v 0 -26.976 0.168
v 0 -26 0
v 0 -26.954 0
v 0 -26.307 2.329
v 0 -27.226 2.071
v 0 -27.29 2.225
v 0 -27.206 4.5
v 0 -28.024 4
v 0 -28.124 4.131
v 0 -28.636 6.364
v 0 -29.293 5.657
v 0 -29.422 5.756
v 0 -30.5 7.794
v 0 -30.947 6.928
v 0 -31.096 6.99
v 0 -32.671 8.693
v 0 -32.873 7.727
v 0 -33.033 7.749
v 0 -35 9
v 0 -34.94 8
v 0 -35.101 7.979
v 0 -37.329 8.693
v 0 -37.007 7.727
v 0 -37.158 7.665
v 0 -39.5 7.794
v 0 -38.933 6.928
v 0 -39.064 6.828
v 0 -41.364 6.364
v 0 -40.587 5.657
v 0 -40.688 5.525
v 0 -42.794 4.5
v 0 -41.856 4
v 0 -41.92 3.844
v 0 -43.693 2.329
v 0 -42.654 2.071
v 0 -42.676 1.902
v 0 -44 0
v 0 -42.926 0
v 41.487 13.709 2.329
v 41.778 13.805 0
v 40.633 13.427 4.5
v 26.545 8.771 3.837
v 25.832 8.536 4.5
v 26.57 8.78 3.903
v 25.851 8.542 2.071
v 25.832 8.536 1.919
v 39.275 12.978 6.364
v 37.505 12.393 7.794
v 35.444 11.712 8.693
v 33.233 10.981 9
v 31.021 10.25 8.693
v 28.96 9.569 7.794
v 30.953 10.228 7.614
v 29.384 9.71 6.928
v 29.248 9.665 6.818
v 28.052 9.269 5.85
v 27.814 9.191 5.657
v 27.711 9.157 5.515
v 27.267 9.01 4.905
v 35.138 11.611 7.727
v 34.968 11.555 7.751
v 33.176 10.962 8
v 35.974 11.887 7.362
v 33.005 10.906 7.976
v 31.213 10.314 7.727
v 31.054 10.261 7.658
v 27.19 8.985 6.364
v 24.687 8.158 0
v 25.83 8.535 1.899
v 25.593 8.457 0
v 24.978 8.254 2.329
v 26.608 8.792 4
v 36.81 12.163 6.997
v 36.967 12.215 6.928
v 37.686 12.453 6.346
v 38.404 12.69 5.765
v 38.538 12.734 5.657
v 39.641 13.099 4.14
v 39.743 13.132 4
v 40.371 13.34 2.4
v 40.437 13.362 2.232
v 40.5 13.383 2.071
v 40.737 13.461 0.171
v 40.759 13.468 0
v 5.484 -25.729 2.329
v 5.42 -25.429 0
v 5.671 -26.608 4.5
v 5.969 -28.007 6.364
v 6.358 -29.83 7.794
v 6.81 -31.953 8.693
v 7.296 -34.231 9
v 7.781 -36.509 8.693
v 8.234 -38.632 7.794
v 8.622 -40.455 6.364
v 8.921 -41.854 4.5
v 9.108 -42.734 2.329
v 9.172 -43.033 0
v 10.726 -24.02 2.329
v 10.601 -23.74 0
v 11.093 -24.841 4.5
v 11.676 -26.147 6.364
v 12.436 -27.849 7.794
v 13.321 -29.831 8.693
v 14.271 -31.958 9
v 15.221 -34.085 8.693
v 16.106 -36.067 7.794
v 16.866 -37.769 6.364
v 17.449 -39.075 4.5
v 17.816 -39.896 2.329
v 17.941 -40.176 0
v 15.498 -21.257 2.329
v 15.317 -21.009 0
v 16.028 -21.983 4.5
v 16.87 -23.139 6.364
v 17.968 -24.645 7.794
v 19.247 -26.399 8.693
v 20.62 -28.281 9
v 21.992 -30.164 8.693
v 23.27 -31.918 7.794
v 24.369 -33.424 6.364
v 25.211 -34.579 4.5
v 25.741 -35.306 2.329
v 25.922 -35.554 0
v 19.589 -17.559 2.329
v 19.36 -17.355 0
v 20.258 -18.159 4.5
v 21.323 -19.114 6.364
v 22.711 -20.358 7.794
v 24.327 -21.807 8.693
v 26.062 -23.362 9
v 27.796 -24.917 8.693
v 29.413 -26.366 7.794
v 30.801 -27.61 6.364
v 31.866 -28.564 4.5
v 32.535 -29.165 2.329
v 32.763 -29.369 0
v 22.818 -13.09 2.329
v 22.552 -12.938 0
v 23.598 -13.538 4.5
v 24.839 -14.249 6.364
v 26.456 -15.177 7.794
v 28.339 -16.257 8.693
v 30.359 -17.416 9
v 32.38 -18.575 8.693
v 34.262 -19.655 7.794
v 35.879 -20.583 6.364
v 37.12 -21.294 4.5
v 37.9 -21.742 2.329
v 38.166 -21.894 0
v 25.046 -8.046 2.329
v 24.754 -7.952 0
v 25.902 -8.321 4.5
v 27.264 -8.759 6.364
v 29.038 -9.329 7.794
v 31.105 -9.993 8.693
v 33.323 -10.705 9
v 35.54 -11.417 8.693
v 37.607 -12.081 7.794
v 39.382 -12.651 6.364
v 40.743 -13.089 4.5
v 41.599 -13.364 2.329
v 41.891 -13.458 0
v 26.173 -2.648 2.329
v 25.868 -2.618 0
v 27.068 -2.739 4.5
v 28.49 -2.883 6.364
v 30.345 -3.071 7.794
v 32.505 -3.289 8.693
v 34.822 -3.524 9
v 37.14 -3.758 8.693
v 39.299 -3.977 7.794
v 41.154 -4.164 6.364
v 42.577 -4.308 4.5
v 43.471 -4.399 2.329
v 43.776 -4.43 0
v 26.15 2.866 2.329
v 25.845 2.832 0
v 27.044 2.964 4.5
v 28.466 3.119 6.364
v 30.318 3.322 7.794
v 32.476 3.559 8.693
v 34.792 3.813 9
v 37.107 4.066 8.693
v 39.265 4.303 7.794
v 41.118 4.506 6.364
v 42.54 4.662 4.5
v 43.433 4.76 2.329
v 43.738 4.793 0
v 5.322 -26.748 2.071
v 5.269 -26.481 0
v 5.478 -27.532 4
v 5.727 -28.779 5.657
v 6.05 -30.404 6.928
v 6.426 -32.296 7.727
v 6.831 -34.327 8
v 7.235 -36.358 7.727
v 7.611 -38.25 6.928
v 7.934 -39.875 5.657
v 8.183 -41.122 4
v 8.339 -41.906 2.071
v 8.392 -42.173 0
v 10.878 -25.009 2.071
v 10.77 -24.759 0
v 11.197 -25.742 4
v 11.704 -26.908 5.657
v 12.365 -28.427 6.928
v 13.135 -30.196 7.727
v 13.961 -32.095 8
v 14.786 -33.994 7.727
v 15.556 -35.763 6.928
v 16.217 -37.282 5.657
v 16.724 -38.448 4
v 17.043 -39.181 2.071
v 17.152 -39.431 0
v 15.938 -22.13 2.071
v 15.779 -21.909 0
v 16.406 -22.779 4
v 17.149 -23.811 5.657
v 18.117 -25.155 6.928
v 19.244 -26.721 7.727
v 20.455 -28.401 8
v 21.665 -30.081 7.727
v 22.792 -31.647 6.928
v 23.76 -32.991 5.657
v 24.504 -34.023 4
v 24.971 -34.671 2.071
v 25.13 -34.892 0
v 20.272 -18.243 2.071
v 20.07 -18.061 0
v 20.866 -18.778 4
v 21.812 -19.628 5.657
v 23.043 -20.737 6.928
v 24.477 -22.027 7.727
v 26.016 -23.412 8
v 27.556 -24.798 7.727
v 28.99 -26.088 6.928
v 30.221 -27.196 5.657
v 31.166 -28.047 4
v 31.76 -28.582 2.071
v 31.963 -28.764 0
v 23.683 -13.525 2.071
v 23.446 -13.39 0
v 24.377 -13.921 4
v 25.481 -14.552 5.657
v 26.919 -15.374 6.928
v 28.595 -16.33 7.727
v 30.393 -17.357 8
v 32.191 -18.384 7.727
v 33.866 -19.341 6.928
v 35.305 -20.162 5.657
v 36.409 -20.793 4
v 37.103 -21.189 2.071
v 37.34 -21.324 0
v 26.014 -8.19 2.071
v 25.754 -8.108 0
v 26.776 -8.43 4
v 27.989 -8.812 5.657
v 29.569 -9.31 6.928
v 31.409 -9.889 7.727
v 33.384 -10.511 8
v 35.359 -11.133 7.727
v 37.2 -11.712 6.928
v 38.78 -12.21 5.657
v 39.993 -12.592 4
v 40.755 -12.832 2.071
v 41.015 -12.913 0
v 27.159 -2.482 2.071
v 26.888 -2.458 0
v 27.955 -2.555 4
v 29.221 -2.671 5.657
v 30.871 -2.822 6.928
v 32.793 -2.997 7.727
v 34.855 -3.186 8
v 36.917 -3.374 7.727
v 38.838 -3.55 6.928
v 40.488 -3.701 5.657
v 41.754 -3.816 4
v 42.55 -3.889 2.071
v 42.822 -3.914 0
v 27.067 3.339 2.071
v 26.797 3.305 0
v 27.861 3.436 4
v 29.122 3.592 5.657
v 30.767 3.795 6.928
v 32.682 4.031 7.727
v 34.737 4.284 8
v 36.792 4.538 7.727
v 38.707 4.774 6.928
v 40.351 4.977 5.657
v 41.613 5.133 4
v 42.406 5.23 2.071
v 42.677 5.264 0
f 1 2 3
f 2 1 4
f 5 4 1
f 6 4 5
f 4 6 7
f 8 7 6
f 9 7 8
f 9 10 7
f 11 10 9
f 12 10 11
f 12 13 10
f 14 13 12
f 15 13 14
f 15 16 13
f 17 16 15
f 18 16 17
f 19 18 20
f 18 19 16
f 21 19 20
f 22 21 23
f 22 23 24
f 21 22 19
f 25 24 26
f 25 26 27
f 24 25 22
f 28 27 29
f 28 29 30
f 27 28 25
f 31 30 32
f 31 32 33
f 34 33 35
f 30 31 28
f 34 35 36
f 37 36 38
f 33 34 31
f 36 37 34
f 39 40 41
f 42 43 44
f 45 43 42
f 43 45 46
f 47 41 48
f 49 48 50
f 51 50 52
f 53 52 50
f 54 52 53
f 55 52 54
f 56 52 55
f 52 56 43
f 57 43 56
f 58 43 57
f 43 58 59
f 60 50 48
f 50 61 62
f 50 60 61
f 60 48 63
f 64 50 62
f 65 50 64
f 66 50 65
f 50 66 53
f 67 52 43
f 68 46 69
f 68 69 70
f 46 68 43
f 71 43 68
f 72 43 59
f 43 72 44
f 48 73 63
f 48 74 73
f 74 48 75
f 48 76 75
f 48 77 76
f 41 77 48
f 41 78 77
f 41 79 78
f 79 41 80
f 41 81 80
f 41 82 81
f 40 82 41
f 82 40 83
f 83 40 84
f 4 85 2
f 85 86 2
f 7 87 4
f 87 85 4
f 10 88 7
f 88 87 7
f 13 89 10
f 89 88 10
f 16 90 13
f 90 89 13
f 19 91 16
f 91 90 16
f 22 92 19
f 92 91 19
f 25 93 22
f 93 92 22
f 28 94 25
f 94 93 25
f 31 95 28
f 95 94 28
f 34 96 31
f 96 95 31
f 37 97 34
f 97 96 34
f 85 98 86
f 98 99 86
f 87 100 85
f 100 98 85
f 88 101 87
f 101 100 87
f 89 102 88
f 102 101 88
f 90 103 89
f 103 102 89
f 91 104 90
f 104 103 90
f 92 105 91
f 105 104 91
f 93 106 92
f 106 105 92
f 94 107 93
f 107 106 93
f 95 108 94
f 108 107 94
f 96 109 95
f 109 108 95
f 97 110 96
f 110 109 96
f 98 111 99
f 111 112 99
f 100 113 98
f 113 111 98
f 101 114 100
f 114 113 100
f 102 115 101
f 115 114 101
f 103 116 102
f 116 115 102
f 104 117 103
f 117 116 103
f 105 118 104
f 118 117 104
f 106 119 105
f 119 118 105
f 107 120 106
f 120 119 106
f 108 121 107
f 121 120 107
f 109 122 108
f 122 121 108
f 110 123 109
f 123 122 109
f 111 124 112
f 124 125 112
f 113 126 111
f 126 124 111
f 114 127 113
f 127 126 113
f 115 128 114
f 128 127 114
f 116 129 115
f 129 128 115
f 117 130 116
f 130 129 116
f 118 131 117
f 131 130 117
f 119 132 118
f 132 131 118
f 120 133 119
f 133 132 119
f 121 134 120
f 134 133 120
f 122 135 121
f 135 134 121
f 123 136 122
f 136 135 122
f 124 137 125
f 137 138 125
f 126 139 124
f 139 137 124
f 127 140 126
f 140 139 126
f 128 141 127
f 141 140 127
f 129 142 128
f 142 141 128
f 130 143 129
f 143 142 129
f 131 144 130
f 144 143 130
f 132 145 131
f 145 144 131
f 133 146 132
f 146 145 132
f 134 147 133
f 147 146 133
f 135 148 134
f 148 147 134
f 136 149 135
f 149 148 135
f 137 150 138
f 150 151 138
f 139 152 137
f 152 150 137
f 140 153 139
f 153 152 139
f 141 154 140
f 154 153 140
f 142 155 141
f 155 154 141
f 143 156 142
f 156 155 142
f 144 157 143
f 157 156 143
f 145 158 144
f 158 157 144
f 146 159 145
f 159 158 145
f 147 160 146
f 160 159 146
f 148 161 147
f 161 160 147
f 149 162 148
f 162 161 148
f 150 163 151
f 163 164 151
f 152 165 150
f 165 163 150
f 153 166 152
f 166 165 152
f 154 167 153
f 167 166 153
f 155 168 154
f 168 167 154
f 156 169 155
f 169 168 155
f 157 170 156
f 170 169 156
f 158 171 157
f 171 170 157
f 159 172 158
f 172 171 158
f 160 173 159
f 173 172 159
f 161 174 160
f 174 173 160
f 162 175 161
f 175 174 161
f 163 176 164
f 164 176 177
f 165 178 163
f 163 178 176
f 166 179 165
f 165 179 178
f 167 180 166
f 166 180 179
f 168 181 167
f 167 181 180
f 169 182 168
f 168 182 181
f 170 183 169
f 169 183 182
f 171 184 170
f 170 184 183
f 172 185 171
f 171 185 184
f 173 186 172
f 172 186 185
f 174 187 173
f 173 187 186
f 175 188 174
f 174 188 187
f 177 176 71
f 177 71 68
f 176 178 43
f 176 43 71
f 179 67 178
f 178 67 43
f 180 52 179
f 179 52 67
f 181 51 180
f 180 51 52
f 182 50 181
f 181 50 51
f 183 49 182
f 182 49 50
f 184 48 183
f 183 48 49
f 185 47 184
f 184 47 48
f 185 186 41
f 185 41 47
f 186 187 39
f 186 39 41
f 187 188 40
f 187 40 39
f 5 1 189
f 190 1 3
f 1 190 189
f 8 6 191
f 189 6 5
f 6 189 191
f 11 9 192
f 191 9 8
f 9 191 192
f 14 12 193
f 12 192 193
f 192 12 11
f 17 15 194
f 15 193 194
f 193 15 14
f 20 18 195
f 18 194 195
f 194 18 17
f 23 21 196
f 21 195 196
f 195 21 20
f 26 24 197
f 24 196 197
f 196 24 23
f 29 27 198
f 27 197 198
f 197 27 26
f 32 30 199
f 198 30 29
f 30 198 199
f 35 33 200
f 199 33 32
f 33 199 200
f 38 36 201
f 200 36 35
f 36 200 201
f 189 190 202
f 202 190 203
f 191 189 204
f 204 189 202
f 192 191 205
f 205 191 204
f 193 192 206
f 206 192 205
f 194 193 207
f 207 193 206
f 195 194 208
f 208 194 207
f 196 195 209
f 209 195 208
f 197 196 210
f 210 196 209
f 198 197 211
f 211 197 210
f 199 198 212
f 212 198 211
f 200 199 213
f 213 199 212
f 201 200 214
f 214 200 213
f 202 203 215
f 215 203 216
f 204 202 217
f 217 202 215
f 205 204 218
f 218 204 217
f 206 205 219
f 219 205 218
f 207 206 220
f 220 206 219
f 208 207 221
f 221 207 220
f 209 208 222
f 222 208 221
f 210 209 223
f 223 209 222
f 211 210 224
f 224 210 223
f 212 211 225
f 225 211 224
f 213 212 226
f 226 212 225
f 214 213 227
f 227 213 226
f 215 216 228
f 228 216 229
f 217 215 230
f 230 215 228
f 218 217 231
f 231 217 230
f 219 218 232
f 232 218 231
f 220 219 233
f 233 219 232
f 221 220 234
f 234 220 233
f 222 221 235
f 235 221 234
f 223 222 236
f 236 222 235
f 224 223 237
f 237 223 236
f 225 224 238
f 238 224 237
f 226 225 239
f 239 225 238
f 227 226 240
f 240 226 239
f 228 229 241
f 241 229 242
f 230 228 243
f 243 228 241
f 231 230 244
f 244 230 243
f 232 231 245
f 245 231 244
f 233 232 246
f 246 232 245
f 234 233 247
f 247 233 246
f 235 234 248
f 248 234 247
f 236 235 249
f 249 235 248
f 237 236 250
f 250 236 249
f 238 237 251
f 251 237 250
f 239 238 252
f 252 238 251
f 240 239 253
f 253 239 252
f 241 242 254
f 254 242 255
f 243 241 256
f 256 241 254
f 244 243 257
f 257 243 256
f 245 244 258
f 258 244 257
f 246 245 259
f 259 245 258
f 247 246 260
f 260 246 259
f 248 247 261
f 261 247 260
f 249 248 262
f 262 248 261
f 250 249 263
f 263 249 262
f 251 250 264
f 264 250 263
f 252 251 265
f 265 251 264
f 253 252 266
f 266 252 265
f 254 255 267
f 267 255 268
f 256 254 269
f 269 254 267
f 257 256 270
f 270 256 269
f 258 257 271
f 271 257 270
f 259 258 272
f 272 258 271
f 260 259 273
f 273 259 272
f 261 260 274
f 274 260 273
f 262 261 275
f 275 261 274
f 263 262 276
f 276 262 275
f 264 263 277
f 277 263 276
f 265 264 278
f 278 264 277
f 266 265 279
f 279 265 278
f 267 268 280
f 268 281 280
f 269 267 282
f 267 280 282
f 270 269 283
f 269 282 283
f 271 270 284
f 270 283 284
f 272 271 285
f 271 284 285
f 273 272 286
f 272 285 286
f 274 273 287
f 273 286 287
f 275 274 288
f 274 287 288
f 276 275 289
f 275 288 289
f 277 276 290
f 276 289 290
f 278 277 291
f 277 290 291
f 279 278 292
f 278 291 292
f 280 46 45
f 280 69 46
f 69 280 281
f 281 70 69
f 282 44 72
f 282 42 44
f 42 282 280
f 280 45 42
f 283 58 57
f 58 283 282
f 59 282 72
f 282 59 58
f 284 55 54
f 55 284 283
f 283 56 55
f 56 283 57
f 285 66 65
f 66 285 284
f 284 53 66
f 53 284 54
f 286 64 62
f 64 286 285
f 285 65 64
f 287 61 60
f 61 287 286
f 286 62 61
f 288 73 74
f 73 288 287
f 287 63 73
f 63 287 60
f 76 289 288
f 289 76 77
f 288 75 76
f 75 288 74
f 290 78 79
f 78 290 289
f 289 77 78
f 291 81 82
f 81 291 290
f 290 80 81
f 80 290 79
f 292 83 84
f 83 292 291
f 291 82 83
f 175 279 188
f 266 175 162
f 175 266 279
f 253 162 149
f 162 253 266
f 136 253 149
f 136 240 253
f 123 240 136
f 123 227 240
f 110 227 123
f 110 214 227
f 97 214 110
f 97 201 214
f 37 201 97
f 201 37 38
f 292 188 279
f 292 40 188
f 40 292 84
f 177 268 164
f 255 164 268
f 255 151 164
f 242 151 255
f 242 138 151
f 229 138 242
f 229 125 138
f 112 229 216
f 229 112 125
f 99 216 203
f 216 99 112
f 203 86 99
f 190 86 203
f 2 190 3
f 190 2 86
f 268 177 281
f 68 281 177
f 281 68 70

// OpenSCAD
// file: ../build_environments.scad
// build_environments.scad: modules to build level sections
//

module pool(diameter=10.0, wall_height=2.0, step_width=3.0, connections=[])
{
    difference() {
        union() {
        difference() {
            cylinder(h=0.5,r1=diameter+step_width,r2=diameter+step_width,$fn=48);
            translate([0,0,-0.1])
                cylinder(h=0.7,r1=diameter,r2=diameter,$fn=48);
        }
        difference() {
            cylinder(h=wall_height,r1=diameter+step_width+1.0,r2=diameter+step_width+1.0,$fn=48);
            translate([0,0,-0.1])
                cylinder(h=wall_height+0.2,r1=diameter+step_width,r2=diameter+step_width,$fn=48);
        }
        }
    
        for (c = connections)
        {
            rotate([0,90,0]) {
                angle = atan2(c[1],c[0]);
                rotate([-angle,0,0]) {
                    cylinder(h=diameter+5.0,r1=c[2],r2=c[2],$fn=48);
                }
            }
        }
    }
}

module straight(length=10.0, width=2.0, dy1=0.0, dy2=0.0, dz=0.0)
{
    dims = [0, 0, 0, 0, 0, (dz/length)];
    matrix = [
        [ 1, dims[0], dims[1], 0 ],
        [ dims[2], 1, dims[4], 0 ],
        [ dims[5], dims[3], 1, 0 ],
        [ 0, 0, 0, 1 ]
    ];
    multmatrix(matrix)
    difference() {
        translate([dy1,0,0])
        union() {
            rotate([0,90,0]) {
                difference() {
                    cylinder(h=(length-dy1-dy2),r1=width+1.0,r2=width+1.0,$fn=24);
                    translate([0,0,-0.1])
                        cylinder(h=(length-dy1-dy2+0.2),r1=width,r2=width,$fn=24);
                }
                difference() {
                    cylinder(h=1.0,r1=width+2.0,r2=width+2.0,$fn=24);
                    translate([0,0,-0.1])
                        cylinder(h=1.2,r1=width,r2=width,$fn=24);
                }
                translate([0,0,(length-dy1-dy2)-1.0]) {
                    difference() {
                        cylinder(h=1.0,r1=width+2.0,r2=width+2.0,$fn=24);
                        translate([0,0,-0.1])
                            cylinder(h=1.2,r1=width,r2=width,$fn=24);
                    }
                }
            }
        }
        translate([0,0,-(2*width+4.0)/2])
            cube([3*length,3*length,2*width+4.0],center=true);
    }
}

module curve(p0=[0,0], center=[0,0], dir=1, angle=0.0, width=2.0)
{
    radius = sqrt((p0[0]-center[0])*(p0[0]-center[0]) + (p0[1]-center[1])*(p0[1]-center[1]));
    if (dir == 0) {
        difference() {
            rotate([0,0,-90])
            difference() {
                rotate_extrude(angle = angle, convexity = 10, $fn=32)
                    translate([radius, 0, 0])
                        circle(r = width+1.0,$fn=24);
                rotate([0,0,-1.0])
                    rotate_extrude(angle = angle+2.0, convexity = 10, $fn=32)
                        translate([radius, 0, 0])
                            circle(r = width,$fn=24);
            }
            translate([0,0,-(2*width+4.0)/2])
                cube([5*radius,5*radius,2*width+4.0],center=true);
        }
    }
    else {
        difference() {
            rotate([0,0,90])
            difference() {
                rotate_extrude(angle = -angle, convexity = 10, $fn=32)
                    translate([radius, 0, 0])
                        circle(r = width+1.0,$fn=24);
                rotate([0,0,1.0])
                    rotate_extrude(angle = -angle-2.0, convexity = 10, $fn=32)
                        translate([radius, 0, 0])
                            circle(r = width,$fn=24);
            }
            translate([0,0,-(2*width+4.0)/2])
                cube([5*radius,5*radius,2*width+4.0],center=true);
        }
    }

}

// test pool
//pool(diameter=12.0000, wall_height=3.0000, step_width=3.0000, connections=[[0.0000,-26.0000,2.0000], [23.6074,0.0000,2.0000]]);

// test straight, slope
//straight(length=26.0000, width=2.0000, dy1=11.8322, dy2=6.7082, dz=0.0000);
//straight(length=29.1549, width=12.0000, dy1=0.0000, dy2=0.0000, dz=-15.0000);

// test curve
//curve(p0=[23.6074, 0.0000], center=[23.6074, 5.0000], dir=0, angle=60.1011, width=2.0000);
//curve(p0=[33.6426, 12.4219], center=[37.9771, 9.9295], dir=1, angle=120.4627, width=2.0000);
// main file
use <../build_environments.scad>;
curve(p0=[271.7860, 101.2375], center=[301.4151, 82.6065], dir=0, angle=108.2854, width=8.0000);
